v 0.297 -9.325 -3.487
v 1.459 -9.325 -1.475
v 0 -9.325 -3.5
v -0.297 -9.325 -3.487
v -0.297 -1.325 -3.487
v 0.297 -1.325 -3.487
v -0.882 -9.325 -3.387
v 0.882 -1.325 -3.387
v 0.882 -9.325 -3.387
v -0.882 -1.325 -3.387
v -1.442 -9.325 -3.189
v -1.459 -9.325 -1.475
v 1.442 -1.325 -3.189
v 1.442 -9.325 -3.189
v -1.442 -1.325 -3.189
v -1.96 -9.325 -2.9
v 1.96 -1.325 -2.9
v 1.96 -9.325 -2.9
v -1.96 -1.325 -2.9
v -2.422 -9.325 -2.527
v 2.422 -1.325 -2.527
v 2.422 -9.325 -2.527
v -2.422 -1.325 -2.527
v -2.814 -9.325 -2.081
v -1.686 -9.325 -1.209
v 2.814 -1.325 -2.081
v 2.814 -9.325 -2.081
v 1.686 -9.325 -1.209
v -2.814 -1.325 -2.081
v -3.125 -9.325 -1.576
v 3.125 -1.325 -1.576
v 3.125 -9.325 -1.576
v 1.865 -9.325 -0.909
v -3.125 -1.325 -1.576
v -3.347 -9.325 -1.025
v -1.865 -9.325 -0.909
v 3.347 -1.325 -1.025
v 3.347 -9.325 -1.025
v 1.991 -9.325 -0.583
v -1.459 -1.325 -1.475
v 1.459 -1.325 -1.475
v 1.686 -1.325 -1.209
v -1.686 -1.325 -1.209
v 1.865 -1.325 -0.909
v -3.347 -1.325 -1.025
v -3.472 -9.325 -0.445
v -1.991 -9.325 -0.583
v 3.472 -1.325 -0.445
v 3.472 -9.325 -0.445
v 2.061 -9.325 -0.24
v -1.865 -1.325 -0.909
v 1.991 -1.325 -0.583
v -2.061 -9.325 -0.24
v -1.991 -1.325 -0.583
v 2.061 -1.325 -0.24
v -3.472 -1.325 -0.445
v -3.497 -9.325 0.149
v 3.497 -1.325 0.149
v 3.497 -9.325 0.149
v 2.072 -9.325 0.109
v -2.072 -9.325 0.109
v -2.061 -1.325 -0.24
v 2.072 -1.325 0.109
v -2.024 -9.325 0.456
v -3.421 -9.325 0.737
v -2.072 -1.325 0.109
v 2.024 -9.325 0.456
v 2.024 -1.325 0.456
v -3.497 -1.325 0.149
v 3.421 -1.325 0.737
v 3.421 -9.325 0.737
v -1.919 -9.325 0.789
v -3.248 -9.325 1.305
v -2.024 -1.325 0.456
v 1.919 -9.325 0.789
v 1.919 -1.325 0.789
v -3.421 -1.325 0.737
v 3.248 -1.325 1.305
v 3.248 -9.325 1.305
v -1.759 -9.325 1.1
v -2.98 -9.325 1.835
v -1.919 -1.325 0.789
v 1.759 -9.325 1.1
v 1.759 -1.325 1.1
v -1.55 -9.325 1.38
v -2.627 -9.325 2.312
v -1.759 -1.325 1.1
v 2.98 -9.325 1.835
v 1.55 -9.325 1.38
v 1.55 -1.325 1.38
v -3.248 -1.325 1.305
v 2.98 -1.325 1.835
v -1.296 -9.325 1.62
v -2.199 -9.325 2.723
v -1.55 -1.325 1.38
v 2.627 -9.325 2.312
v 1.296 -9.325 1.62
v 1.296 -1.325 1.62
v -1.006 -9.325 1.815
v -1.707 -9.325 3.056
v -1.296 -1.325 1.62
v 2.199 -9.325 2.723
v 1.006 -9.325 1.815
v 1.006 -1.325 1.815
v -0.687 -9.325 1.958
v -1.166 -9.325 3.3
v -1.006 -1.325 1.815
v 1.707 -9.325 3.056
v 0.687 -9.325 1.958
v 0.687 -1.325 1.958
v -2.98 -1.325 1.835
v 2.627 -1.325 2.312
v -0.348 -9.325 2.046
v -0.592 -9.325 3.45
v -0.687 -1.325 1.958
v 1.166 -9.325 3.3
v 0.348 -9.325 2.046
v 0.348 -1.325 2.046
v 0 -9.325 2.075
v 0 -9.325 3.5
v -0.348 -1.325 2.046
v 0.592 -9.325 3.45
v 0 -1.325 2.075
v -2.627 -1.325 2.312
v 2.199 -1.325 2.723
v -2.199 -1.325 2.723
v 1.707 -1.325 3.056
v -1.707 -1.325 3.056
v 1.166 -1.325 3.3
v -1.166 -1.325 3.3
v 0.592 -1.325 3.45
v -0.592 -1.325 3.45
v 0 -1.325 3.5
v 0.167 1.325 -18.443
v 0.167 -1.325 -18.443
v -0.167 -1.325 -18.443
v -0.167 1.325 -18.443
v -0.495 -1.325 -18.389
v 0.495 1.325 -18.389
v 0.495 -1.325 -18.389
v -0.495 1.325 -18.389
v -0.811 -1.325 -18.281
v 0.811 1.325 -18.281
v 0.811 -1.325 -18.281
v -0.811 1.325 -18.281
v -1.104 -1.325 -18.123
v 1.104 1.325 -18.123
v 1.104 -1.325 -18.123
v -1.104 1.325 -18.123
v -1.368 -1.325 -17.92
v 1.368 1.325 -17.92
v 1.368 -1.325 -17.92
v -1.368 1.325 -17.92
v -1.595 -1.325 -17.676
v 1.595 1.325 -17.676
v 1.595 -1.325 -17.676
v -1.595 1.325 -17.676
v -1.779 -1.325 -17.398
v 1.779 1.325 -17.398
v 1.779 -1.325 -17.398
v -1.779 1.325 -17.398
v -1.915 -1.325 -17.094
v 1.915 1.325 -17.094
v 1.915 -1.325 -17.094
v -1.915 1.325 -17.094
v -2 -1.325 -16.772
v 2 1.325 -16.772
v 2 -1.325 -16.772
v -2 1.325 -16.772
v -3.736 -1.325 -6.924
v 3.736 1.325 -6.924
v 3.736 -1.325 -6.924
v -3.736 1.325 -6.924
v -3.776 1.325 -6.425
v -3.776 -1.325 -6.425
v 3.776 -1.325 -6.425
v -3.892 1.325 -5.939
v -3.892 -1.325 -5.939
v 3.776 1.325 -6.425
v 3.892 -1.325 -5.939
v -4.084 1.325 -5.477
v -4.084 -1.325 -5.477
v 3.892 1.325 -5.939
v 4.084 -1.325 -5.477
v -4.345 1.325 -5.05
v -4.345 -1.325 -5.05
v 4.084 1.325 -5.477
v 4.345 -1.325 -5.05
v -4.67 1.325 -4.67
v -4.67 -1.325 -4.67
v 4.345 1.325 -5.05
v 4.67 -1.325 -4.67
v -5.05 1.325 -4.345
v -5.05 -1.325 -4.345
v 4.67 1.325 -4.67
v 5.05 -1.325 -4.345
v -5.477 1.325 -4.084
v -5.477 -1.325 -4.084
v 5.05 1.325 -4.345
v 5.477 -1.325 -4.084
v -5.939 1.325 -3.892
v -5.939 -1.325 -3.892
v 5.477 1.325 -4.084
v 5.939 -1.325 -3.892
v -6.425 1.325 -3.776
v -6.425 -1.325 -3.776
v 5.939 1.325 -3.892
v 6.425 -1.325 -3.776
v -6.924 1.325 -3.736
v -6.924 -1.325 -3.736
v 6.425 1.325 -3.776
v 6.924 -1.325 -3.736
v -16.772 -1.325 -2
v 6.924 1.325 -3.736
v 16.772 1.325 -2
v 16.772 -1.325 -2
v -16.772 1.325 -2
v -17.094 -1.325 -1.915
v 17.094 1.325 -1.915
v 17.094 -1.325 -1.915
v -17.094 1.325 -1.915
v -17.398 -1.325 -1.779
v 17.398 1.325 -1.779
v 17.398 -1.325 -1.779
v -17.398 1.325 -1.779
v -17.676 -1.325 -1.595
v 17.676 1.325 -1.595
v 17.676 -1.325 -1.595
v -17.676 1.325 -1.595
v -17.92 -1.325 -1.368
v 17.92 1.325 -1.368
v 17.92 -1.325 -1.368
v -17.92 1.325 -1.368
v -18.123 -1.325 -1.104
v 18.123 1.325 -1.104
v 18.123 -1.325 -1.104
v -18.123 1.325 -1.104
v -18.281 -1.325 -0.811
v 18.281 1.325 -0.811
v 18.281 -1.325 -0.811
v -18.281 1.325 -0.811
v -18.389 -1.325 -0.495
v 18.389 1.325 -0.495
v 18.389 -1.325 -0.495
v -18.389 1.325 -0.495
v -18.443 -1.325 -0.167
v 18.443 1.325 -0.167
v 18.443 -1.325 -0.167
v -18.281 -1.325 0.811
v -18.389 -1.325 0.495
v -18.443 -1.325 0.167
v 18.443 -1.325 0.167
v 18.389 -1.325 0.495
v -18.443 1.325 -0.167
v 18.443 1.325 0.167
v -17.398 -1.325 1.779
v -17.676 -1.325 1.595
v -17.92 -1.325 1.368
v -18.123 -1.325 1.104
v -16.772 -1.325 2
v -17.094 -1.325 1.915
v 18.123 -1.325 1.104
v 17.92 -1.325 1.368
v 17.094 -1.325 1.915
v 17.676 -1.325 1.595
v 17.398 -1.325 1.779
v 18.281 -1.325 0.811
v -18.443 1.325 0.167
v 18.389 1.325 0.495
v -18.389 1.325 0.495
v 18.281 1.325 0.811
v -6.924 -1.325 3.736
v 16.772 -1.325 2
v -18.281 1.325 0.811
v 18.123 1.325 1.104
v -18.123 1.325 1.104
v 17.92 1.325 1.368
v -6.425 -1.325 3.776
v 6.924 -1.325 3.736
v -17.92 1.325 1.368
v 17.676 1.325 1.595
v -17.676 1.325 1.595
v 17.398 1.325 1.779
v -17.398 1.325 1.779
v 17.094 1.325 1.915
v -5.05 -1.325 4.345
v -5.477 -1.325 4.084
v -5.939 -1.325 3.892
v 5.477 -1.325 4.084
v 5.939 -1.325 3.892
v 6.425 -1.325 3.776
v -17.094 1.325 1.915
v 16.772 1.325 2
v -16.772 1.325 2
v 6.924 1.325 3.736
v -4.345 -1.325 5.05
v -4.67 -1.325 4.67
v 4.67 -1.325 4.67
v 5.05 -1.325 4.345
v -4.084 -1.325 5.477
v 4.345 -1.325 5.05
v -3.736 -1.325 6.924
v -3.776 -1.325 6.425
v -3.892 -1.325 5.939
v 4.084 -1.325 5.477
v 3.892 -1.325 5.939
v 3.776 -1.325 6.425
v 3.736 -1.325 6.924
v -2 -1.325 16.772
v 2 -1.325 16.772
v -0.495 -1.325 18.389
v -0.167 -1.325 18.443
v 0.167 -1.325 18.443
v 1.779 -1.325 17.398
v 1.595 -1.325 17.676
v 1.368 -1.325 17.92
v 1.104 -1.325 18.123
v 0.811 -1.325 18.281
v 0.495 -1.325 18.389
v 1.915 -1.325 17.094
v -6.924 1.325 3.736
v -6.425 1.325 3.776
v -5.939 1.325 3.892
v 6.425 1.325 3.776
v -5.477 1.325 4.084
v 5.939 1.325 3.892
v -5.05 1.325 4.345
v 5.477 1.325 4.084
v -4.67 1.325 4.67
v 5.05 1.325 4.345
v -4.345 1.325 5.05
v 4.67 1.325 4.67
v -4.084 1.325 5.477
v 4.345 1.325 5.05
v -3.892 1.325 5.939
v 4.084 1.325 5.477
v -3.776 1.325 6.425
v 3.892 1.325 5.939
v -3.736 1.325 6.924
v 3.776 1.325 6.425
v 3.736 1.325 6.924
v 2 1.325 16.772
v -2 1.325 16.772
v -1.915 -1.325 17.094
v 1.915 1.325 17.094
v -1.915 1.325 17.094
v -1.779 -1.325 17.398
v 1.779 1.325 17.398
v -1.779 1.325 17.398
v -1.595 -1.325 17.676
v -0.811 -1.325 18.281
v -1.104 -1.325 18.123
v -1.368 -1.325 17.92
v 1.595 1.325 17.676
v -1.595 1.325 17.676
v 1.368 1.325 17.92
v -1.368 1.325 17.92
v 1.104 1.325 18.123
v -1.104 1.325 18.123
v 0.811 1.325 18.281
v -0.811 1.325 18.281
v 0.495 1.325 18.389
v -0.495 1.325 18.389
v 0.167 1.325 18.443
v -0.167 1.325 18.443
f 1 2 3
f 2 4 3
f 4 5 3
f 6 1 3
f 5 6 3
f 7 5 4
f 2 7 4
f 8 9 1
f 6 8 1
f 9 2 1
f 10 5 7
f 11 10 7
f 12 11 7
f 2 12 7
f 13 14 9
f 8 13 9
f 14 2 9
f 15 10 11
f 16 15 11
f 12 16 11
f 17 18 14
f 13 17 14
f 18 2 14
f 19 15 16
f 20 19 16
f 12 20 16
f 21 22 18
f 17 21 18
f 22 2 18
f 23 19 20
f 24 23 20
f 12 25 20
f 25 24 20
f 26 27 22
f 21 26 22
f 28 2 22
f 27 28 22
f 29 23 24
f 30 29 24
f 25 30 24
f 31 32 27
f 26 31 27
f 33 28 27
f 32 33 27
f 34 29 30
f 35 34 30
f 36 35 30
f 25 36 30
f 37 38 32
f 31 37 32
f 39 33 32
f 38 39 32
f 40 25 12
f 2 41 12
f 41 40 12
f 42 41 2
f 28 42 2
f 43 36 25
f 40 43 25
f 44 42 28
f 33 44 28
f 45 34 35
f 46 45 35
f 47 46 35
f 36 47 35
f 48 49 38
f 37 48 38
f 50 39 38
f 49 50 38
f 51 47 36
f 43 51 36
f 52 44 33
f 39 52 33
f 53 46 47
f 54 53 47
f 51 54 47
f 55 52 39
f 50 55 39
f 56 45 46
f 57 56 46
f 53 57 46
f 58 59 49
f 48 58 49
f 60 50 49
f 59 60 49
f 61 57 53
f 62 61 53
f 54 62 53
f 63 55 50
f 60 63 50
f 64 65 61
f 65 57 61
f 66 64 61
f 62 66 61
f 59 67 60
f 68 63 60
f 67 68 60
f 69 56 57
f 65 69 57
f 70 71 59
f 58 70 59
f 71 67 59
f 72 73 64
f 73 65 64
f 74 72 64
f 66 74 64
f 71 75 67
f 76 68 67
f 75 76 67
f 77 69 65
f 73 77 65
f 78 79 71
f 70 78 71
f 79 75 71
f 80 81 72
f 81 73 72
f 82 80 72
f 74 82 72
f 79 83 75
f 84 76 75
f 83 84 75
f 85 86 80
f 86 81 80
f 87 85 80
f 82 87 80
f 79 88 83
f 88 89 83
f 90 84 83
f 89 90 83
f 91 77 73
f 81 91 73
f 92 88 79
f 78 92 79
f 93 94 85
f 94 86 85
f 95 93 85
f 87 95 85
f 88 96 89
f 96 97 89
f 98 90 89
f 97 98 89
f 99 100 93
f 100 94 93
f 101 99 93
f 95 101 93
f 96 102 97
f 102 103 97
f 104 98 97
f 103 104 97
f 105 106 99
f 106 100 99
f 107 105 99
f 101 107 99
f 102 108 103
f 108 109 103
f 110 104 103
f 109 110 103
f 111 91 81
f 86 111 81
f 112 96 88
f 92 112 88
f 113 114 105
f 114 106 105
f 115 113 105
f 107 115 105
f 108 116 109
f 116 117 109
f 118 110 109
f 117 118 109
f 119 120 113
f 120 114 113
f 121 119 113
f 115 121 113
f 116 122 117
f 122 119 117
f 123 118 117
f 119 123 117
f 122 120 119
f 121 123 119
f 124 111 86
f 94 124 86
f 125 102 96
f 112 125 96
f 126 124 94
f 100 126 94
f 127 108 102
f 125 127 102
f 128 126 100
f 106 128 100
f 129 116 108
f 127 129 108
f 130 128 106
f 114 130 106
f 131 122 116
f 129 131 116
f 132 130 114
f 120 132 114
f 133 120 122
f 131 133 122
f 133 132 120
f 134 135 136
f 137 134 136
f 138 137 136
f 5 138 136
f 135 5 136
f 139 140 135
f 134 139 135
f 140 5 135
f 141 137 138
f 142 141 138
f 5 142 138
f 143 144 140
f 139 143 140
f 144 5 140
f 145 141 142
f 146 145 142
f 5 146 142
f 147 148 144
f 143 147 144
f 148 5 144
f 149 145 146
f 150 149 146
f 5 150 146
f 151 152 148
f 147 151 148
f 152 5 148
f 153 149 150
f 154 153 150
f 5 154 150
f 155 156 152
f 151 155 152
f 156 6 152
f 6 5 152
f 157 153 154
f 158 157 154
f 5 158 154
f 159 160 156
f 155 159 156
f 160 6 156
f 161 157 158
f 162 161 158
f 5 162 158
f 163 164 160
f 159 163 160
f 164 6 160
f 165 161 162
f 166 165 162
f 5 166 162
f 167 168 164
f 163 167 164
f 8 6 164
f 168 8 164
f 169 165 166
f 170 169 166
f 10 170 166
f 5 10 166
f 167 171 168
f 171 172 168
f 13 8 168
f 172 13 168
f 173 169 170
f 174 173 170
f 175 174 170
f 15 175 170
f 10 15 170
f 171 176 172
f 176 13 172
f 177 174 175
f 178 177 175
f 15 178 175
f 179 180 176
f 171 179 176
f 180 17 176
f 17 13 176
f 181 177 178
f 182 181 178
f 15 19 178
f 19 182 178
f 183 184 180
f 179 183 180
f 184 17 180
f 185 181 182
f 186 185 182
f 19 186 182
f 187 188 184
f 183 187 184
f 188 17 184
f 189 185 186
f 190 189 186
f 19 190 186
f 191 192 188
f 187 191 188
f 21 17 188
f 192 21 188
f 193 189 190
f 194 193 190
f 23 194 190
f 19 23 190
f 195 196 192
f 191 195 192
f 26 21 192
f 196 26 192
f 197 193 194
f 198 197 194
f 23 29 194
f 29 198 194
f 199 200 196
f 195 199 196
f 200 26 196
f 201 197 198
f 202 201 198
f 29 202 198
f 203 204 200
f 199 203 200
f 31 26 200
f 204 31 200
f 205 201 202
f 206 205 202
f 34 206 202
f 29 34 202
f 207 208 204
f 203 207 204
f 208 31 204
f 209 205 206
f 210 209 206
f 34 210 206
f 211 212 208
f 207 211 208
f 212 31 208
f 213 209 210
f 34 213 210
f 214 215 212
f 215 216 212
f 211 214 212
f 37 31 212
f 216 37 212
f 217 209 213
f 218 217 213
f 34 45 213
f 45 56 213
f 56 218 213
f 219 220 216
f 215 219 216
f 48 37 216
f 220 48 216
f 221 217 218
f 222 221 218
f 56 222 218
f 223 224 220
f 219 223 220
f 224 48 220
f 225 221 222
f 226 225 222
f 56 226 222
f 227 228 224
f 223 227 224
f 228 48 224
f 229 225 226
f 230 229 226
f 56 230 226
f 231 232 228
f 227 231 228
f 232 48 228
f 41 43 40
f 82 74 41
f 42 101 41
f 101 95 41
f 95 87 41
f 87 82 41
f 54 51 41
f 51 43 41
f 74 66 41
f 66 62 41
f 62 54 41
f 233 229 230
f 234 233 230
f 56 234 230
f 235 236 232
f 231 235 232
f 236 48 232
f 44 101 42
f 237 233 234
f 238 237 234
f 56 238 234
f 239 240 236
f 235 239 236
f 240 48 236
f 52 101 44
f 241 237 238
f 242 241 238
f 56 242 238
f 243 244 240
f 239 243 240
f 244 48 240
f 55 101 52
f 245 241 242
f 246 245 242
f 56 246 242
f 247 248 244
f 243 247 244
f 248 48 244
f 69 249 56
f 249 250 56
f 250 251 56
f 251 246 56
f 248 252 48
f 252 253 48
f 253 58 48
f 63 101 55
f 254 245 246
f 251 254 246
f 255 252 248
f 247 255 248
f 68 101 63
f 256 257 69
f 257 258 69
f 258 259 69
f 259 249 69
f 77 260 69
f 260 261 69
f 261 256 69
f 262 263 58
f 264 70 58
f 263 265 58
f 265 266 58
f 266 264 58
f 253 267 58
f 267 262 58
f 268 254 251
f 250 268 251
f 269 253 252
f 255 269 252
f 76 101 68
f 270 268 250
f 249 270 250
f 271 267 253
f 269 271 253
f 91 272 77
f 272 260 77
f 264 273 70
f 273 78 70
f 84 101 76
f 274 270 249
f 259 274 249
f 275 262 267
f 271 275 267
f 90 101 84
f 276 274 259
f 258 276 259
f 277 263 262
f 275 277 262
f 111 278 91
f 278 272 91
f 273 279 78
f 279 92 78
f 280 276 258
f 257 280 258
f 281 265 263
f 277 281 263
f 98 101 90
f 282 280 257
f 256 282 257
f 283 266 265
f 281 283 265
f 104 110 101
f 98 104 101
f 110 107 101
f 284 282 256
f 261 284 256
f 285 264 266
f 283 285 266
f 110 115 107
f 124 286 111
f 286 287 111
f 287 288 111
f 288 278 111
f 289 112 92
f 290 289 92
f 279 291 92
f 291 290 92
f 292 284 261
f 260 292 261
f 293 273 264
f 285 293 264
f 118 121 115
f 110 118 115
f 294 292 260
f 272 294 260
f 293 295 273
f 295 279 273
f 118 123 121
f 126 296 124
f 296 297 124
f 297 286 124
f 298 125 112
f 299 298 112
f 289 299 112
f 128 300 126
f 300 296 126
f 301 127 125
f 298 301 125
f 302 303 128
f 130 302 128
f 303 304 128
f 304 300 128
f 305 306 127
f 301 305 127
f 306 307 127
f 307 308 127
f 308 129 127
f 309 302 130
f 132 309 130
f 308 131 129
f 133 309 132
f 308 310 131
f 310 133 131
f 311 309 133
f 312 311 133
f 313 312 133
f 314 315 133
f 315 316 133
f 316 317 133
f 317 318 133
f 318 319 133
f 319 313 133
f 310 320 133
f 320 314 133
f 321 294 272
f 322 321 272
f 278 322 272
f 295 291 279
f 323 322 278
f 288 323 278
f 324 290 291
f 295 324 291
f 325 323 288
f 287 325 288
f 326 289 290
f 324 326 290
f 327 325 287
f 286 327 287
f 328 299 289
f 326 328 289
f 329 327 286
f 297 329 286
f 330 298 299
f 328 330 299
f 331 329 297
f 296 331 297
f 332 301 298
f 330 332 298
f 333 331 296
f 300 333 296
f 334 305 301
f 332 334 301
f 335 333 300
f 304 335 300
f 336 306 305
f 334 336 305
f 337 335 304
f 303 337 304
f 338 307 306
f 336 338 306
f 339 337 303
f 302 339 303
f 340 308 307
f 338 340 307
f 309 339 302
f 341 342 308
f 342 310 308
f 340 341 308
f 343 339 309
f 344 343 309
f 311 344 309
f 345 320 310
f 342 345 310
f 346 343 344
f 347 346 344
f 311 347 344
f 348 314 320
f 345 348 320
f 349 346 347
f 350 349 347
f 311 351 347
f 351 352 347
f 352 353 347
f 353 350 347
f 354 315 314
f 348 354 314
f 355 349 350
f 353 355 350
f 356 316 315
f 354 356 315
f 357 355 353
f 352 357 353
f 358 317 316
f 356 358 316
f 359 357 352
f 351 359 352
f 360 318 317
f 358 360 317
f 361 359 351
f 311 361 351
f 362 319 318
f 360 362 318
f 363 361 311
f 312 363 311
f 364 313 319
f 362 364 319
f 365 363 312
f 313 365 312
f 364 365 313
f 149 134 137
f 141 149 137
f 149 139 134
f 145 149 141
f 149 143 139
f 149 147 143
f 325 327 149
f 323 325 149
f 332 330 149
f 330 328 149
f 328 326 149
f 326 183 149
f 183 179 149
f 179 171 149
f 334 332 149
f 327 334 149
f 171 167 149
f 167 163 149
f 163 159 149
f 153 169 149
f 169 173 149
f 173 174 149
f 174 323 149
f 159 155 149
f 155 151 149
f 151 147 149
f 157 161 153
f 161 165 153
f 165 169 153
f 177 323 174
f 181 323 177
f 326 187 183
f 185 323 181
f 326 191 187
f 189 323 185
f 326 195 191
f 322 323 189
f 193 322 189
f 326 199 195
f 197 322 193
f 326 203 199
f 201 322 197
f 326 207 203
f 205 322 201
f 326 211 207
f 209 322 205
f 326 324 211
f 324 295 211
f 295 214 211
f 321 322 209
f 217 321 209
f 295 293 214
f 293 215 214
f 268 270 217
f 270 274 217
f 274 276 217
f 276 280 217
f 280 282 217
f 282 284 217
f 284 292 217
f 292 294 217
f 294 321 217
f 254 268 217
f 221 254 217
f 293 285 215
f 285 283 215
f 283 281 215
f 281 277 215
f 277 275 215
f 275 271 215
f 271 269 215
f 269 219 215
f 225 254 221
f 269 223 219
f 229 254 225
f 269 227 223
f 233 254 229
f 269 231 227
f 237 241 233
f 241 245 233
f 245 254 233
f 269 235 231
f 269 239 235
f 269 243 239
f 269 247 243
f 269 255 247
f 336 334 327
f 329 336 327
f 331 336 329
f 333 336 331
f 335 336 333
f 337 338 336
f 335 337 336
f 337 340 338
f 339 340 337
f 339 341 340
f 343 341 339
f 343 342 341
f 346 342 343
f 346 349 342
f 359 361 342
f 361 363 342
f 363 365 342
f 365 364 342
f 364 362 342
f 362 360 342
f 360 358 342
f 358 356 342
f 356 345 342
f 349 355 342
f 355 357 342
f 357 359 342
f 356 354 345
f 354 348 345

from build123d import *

# Parameters (mm, degrees)
BOSS_EXTRUDE1_DEPTH = 1.325
SKETCH5_R           = 3.5
BOSS_EXTRUDE4_DEPTH = 8
CUT_EXTRUDE1_DEPTH  = 8


with BuildPart() as part:
    # Sketch2 → Boss-Extrude1 (new, symmetric)
    with BuildSketch(Plane(origin=(0, 0, 0), x_dir=(1, 0, 0), z_dir=(0, 1, 0))):
        with BuildLine():
            Line((2, 16.771800738), (3.736481777, 6.923723208))
            ThreePointArc((3.736481777, 6.923723208), (3.979096084, 5.704018717), (4.670003178, 4.670003178))
            ThreePointArc((4.670003178, 4.670003178), (5.704018717, 3.979096084), (6.923723208, 3.736481777))
            Line((6.923723208, 3.736481777), (16.771800738, 2))
            ThreePointArc((16.771800738, 2), (18.45, 0), (16.771800738, -2))
            Line((16.771800738, -2), (6.923723208, -3.736481777))
            ThreePointArc((6.923723208, -3.736481777), (5.704018717, -3.979096084), (4.670003178, -4.670003178))
            ThreePointArc((4.670003178, -4.670003178), (3.979096084, -5.704018717), (3.736481777, -6.923723208))
            Line((3.736481777, -6.923723208), (2, -16.771800738))
            ThreePointArc((2, -16.771800738), (0, -18.45), (-2, -16.771800738))
            Line((-2, -16.771800738), (-3.736481777, -6.923723208))
            ThreePointArc((-3.736481777, -6.923723208), (-3.979096084, -5.704018717), (-4.670003178, -4.670003178))
            ThreePointArc((-4.670003178, -4.670003178), (-5.704018717, -3.979096084), (-6.923723208, -3.736481777))
            Line((-6.923723208, -3.736481777), (-16.771800738, -2))
            ThreePointArc((-16.771800738, -2), (-18.45, 0), (-16.771800738, 2))
            Line((-16.771800738, 2), (-6.923723208, 3.736481777))
            ThreePointArc((-6.923723208, 3.736481777), (-5.704018717, 3.979096084), (-4.670003178, 4.670003178))
            ThreePointArc((-4.670003178, 4.670003178), (-3.979096084, 5.704018717), (-3.736481777, 6.923723208))
            Line((-3.736481777, 6.923723208), (-2, 16.771800738))
            ThreePointArc((-2, 16.771800738), (0, 18.45), (2, 16.771800738))
        make_face()
    extrude(amount=BOSS_EXTRUDE1_DEPTH, both=True)

    # Sketch5 → Boss-Extrude4 (add)
    with BuildSketch(Plane.XZ.offset(1.325)):
        with Locations(Location((0, 0, 0), (0, 0, 90))):
            Circle(SKETCH5_R)
    extrude(amount=BOSS_EXTRUDE4_DEPTH)

    # Sketch6 → Cut-Extrude1 (cut)
    with BuildSketch(Plane.XZ.offset(9.325)):
        with BuildLine():
            ThreePointArc((2.075, 0), (-0.799143979, 1.91493966), (-1.459451952, -1.475))
            Line((-1.459451952, -1.475), (1.459451952, -1.475))
            ThreePointArc((1.459451952, -1.475), (1.91493966, -0.799143979), (2.075, 0))
        make_face()
    extrude(amount=-CUT_EXTRUDE1_DEPTH, mode=Mode.SUBTRACT)


solid = part.part
